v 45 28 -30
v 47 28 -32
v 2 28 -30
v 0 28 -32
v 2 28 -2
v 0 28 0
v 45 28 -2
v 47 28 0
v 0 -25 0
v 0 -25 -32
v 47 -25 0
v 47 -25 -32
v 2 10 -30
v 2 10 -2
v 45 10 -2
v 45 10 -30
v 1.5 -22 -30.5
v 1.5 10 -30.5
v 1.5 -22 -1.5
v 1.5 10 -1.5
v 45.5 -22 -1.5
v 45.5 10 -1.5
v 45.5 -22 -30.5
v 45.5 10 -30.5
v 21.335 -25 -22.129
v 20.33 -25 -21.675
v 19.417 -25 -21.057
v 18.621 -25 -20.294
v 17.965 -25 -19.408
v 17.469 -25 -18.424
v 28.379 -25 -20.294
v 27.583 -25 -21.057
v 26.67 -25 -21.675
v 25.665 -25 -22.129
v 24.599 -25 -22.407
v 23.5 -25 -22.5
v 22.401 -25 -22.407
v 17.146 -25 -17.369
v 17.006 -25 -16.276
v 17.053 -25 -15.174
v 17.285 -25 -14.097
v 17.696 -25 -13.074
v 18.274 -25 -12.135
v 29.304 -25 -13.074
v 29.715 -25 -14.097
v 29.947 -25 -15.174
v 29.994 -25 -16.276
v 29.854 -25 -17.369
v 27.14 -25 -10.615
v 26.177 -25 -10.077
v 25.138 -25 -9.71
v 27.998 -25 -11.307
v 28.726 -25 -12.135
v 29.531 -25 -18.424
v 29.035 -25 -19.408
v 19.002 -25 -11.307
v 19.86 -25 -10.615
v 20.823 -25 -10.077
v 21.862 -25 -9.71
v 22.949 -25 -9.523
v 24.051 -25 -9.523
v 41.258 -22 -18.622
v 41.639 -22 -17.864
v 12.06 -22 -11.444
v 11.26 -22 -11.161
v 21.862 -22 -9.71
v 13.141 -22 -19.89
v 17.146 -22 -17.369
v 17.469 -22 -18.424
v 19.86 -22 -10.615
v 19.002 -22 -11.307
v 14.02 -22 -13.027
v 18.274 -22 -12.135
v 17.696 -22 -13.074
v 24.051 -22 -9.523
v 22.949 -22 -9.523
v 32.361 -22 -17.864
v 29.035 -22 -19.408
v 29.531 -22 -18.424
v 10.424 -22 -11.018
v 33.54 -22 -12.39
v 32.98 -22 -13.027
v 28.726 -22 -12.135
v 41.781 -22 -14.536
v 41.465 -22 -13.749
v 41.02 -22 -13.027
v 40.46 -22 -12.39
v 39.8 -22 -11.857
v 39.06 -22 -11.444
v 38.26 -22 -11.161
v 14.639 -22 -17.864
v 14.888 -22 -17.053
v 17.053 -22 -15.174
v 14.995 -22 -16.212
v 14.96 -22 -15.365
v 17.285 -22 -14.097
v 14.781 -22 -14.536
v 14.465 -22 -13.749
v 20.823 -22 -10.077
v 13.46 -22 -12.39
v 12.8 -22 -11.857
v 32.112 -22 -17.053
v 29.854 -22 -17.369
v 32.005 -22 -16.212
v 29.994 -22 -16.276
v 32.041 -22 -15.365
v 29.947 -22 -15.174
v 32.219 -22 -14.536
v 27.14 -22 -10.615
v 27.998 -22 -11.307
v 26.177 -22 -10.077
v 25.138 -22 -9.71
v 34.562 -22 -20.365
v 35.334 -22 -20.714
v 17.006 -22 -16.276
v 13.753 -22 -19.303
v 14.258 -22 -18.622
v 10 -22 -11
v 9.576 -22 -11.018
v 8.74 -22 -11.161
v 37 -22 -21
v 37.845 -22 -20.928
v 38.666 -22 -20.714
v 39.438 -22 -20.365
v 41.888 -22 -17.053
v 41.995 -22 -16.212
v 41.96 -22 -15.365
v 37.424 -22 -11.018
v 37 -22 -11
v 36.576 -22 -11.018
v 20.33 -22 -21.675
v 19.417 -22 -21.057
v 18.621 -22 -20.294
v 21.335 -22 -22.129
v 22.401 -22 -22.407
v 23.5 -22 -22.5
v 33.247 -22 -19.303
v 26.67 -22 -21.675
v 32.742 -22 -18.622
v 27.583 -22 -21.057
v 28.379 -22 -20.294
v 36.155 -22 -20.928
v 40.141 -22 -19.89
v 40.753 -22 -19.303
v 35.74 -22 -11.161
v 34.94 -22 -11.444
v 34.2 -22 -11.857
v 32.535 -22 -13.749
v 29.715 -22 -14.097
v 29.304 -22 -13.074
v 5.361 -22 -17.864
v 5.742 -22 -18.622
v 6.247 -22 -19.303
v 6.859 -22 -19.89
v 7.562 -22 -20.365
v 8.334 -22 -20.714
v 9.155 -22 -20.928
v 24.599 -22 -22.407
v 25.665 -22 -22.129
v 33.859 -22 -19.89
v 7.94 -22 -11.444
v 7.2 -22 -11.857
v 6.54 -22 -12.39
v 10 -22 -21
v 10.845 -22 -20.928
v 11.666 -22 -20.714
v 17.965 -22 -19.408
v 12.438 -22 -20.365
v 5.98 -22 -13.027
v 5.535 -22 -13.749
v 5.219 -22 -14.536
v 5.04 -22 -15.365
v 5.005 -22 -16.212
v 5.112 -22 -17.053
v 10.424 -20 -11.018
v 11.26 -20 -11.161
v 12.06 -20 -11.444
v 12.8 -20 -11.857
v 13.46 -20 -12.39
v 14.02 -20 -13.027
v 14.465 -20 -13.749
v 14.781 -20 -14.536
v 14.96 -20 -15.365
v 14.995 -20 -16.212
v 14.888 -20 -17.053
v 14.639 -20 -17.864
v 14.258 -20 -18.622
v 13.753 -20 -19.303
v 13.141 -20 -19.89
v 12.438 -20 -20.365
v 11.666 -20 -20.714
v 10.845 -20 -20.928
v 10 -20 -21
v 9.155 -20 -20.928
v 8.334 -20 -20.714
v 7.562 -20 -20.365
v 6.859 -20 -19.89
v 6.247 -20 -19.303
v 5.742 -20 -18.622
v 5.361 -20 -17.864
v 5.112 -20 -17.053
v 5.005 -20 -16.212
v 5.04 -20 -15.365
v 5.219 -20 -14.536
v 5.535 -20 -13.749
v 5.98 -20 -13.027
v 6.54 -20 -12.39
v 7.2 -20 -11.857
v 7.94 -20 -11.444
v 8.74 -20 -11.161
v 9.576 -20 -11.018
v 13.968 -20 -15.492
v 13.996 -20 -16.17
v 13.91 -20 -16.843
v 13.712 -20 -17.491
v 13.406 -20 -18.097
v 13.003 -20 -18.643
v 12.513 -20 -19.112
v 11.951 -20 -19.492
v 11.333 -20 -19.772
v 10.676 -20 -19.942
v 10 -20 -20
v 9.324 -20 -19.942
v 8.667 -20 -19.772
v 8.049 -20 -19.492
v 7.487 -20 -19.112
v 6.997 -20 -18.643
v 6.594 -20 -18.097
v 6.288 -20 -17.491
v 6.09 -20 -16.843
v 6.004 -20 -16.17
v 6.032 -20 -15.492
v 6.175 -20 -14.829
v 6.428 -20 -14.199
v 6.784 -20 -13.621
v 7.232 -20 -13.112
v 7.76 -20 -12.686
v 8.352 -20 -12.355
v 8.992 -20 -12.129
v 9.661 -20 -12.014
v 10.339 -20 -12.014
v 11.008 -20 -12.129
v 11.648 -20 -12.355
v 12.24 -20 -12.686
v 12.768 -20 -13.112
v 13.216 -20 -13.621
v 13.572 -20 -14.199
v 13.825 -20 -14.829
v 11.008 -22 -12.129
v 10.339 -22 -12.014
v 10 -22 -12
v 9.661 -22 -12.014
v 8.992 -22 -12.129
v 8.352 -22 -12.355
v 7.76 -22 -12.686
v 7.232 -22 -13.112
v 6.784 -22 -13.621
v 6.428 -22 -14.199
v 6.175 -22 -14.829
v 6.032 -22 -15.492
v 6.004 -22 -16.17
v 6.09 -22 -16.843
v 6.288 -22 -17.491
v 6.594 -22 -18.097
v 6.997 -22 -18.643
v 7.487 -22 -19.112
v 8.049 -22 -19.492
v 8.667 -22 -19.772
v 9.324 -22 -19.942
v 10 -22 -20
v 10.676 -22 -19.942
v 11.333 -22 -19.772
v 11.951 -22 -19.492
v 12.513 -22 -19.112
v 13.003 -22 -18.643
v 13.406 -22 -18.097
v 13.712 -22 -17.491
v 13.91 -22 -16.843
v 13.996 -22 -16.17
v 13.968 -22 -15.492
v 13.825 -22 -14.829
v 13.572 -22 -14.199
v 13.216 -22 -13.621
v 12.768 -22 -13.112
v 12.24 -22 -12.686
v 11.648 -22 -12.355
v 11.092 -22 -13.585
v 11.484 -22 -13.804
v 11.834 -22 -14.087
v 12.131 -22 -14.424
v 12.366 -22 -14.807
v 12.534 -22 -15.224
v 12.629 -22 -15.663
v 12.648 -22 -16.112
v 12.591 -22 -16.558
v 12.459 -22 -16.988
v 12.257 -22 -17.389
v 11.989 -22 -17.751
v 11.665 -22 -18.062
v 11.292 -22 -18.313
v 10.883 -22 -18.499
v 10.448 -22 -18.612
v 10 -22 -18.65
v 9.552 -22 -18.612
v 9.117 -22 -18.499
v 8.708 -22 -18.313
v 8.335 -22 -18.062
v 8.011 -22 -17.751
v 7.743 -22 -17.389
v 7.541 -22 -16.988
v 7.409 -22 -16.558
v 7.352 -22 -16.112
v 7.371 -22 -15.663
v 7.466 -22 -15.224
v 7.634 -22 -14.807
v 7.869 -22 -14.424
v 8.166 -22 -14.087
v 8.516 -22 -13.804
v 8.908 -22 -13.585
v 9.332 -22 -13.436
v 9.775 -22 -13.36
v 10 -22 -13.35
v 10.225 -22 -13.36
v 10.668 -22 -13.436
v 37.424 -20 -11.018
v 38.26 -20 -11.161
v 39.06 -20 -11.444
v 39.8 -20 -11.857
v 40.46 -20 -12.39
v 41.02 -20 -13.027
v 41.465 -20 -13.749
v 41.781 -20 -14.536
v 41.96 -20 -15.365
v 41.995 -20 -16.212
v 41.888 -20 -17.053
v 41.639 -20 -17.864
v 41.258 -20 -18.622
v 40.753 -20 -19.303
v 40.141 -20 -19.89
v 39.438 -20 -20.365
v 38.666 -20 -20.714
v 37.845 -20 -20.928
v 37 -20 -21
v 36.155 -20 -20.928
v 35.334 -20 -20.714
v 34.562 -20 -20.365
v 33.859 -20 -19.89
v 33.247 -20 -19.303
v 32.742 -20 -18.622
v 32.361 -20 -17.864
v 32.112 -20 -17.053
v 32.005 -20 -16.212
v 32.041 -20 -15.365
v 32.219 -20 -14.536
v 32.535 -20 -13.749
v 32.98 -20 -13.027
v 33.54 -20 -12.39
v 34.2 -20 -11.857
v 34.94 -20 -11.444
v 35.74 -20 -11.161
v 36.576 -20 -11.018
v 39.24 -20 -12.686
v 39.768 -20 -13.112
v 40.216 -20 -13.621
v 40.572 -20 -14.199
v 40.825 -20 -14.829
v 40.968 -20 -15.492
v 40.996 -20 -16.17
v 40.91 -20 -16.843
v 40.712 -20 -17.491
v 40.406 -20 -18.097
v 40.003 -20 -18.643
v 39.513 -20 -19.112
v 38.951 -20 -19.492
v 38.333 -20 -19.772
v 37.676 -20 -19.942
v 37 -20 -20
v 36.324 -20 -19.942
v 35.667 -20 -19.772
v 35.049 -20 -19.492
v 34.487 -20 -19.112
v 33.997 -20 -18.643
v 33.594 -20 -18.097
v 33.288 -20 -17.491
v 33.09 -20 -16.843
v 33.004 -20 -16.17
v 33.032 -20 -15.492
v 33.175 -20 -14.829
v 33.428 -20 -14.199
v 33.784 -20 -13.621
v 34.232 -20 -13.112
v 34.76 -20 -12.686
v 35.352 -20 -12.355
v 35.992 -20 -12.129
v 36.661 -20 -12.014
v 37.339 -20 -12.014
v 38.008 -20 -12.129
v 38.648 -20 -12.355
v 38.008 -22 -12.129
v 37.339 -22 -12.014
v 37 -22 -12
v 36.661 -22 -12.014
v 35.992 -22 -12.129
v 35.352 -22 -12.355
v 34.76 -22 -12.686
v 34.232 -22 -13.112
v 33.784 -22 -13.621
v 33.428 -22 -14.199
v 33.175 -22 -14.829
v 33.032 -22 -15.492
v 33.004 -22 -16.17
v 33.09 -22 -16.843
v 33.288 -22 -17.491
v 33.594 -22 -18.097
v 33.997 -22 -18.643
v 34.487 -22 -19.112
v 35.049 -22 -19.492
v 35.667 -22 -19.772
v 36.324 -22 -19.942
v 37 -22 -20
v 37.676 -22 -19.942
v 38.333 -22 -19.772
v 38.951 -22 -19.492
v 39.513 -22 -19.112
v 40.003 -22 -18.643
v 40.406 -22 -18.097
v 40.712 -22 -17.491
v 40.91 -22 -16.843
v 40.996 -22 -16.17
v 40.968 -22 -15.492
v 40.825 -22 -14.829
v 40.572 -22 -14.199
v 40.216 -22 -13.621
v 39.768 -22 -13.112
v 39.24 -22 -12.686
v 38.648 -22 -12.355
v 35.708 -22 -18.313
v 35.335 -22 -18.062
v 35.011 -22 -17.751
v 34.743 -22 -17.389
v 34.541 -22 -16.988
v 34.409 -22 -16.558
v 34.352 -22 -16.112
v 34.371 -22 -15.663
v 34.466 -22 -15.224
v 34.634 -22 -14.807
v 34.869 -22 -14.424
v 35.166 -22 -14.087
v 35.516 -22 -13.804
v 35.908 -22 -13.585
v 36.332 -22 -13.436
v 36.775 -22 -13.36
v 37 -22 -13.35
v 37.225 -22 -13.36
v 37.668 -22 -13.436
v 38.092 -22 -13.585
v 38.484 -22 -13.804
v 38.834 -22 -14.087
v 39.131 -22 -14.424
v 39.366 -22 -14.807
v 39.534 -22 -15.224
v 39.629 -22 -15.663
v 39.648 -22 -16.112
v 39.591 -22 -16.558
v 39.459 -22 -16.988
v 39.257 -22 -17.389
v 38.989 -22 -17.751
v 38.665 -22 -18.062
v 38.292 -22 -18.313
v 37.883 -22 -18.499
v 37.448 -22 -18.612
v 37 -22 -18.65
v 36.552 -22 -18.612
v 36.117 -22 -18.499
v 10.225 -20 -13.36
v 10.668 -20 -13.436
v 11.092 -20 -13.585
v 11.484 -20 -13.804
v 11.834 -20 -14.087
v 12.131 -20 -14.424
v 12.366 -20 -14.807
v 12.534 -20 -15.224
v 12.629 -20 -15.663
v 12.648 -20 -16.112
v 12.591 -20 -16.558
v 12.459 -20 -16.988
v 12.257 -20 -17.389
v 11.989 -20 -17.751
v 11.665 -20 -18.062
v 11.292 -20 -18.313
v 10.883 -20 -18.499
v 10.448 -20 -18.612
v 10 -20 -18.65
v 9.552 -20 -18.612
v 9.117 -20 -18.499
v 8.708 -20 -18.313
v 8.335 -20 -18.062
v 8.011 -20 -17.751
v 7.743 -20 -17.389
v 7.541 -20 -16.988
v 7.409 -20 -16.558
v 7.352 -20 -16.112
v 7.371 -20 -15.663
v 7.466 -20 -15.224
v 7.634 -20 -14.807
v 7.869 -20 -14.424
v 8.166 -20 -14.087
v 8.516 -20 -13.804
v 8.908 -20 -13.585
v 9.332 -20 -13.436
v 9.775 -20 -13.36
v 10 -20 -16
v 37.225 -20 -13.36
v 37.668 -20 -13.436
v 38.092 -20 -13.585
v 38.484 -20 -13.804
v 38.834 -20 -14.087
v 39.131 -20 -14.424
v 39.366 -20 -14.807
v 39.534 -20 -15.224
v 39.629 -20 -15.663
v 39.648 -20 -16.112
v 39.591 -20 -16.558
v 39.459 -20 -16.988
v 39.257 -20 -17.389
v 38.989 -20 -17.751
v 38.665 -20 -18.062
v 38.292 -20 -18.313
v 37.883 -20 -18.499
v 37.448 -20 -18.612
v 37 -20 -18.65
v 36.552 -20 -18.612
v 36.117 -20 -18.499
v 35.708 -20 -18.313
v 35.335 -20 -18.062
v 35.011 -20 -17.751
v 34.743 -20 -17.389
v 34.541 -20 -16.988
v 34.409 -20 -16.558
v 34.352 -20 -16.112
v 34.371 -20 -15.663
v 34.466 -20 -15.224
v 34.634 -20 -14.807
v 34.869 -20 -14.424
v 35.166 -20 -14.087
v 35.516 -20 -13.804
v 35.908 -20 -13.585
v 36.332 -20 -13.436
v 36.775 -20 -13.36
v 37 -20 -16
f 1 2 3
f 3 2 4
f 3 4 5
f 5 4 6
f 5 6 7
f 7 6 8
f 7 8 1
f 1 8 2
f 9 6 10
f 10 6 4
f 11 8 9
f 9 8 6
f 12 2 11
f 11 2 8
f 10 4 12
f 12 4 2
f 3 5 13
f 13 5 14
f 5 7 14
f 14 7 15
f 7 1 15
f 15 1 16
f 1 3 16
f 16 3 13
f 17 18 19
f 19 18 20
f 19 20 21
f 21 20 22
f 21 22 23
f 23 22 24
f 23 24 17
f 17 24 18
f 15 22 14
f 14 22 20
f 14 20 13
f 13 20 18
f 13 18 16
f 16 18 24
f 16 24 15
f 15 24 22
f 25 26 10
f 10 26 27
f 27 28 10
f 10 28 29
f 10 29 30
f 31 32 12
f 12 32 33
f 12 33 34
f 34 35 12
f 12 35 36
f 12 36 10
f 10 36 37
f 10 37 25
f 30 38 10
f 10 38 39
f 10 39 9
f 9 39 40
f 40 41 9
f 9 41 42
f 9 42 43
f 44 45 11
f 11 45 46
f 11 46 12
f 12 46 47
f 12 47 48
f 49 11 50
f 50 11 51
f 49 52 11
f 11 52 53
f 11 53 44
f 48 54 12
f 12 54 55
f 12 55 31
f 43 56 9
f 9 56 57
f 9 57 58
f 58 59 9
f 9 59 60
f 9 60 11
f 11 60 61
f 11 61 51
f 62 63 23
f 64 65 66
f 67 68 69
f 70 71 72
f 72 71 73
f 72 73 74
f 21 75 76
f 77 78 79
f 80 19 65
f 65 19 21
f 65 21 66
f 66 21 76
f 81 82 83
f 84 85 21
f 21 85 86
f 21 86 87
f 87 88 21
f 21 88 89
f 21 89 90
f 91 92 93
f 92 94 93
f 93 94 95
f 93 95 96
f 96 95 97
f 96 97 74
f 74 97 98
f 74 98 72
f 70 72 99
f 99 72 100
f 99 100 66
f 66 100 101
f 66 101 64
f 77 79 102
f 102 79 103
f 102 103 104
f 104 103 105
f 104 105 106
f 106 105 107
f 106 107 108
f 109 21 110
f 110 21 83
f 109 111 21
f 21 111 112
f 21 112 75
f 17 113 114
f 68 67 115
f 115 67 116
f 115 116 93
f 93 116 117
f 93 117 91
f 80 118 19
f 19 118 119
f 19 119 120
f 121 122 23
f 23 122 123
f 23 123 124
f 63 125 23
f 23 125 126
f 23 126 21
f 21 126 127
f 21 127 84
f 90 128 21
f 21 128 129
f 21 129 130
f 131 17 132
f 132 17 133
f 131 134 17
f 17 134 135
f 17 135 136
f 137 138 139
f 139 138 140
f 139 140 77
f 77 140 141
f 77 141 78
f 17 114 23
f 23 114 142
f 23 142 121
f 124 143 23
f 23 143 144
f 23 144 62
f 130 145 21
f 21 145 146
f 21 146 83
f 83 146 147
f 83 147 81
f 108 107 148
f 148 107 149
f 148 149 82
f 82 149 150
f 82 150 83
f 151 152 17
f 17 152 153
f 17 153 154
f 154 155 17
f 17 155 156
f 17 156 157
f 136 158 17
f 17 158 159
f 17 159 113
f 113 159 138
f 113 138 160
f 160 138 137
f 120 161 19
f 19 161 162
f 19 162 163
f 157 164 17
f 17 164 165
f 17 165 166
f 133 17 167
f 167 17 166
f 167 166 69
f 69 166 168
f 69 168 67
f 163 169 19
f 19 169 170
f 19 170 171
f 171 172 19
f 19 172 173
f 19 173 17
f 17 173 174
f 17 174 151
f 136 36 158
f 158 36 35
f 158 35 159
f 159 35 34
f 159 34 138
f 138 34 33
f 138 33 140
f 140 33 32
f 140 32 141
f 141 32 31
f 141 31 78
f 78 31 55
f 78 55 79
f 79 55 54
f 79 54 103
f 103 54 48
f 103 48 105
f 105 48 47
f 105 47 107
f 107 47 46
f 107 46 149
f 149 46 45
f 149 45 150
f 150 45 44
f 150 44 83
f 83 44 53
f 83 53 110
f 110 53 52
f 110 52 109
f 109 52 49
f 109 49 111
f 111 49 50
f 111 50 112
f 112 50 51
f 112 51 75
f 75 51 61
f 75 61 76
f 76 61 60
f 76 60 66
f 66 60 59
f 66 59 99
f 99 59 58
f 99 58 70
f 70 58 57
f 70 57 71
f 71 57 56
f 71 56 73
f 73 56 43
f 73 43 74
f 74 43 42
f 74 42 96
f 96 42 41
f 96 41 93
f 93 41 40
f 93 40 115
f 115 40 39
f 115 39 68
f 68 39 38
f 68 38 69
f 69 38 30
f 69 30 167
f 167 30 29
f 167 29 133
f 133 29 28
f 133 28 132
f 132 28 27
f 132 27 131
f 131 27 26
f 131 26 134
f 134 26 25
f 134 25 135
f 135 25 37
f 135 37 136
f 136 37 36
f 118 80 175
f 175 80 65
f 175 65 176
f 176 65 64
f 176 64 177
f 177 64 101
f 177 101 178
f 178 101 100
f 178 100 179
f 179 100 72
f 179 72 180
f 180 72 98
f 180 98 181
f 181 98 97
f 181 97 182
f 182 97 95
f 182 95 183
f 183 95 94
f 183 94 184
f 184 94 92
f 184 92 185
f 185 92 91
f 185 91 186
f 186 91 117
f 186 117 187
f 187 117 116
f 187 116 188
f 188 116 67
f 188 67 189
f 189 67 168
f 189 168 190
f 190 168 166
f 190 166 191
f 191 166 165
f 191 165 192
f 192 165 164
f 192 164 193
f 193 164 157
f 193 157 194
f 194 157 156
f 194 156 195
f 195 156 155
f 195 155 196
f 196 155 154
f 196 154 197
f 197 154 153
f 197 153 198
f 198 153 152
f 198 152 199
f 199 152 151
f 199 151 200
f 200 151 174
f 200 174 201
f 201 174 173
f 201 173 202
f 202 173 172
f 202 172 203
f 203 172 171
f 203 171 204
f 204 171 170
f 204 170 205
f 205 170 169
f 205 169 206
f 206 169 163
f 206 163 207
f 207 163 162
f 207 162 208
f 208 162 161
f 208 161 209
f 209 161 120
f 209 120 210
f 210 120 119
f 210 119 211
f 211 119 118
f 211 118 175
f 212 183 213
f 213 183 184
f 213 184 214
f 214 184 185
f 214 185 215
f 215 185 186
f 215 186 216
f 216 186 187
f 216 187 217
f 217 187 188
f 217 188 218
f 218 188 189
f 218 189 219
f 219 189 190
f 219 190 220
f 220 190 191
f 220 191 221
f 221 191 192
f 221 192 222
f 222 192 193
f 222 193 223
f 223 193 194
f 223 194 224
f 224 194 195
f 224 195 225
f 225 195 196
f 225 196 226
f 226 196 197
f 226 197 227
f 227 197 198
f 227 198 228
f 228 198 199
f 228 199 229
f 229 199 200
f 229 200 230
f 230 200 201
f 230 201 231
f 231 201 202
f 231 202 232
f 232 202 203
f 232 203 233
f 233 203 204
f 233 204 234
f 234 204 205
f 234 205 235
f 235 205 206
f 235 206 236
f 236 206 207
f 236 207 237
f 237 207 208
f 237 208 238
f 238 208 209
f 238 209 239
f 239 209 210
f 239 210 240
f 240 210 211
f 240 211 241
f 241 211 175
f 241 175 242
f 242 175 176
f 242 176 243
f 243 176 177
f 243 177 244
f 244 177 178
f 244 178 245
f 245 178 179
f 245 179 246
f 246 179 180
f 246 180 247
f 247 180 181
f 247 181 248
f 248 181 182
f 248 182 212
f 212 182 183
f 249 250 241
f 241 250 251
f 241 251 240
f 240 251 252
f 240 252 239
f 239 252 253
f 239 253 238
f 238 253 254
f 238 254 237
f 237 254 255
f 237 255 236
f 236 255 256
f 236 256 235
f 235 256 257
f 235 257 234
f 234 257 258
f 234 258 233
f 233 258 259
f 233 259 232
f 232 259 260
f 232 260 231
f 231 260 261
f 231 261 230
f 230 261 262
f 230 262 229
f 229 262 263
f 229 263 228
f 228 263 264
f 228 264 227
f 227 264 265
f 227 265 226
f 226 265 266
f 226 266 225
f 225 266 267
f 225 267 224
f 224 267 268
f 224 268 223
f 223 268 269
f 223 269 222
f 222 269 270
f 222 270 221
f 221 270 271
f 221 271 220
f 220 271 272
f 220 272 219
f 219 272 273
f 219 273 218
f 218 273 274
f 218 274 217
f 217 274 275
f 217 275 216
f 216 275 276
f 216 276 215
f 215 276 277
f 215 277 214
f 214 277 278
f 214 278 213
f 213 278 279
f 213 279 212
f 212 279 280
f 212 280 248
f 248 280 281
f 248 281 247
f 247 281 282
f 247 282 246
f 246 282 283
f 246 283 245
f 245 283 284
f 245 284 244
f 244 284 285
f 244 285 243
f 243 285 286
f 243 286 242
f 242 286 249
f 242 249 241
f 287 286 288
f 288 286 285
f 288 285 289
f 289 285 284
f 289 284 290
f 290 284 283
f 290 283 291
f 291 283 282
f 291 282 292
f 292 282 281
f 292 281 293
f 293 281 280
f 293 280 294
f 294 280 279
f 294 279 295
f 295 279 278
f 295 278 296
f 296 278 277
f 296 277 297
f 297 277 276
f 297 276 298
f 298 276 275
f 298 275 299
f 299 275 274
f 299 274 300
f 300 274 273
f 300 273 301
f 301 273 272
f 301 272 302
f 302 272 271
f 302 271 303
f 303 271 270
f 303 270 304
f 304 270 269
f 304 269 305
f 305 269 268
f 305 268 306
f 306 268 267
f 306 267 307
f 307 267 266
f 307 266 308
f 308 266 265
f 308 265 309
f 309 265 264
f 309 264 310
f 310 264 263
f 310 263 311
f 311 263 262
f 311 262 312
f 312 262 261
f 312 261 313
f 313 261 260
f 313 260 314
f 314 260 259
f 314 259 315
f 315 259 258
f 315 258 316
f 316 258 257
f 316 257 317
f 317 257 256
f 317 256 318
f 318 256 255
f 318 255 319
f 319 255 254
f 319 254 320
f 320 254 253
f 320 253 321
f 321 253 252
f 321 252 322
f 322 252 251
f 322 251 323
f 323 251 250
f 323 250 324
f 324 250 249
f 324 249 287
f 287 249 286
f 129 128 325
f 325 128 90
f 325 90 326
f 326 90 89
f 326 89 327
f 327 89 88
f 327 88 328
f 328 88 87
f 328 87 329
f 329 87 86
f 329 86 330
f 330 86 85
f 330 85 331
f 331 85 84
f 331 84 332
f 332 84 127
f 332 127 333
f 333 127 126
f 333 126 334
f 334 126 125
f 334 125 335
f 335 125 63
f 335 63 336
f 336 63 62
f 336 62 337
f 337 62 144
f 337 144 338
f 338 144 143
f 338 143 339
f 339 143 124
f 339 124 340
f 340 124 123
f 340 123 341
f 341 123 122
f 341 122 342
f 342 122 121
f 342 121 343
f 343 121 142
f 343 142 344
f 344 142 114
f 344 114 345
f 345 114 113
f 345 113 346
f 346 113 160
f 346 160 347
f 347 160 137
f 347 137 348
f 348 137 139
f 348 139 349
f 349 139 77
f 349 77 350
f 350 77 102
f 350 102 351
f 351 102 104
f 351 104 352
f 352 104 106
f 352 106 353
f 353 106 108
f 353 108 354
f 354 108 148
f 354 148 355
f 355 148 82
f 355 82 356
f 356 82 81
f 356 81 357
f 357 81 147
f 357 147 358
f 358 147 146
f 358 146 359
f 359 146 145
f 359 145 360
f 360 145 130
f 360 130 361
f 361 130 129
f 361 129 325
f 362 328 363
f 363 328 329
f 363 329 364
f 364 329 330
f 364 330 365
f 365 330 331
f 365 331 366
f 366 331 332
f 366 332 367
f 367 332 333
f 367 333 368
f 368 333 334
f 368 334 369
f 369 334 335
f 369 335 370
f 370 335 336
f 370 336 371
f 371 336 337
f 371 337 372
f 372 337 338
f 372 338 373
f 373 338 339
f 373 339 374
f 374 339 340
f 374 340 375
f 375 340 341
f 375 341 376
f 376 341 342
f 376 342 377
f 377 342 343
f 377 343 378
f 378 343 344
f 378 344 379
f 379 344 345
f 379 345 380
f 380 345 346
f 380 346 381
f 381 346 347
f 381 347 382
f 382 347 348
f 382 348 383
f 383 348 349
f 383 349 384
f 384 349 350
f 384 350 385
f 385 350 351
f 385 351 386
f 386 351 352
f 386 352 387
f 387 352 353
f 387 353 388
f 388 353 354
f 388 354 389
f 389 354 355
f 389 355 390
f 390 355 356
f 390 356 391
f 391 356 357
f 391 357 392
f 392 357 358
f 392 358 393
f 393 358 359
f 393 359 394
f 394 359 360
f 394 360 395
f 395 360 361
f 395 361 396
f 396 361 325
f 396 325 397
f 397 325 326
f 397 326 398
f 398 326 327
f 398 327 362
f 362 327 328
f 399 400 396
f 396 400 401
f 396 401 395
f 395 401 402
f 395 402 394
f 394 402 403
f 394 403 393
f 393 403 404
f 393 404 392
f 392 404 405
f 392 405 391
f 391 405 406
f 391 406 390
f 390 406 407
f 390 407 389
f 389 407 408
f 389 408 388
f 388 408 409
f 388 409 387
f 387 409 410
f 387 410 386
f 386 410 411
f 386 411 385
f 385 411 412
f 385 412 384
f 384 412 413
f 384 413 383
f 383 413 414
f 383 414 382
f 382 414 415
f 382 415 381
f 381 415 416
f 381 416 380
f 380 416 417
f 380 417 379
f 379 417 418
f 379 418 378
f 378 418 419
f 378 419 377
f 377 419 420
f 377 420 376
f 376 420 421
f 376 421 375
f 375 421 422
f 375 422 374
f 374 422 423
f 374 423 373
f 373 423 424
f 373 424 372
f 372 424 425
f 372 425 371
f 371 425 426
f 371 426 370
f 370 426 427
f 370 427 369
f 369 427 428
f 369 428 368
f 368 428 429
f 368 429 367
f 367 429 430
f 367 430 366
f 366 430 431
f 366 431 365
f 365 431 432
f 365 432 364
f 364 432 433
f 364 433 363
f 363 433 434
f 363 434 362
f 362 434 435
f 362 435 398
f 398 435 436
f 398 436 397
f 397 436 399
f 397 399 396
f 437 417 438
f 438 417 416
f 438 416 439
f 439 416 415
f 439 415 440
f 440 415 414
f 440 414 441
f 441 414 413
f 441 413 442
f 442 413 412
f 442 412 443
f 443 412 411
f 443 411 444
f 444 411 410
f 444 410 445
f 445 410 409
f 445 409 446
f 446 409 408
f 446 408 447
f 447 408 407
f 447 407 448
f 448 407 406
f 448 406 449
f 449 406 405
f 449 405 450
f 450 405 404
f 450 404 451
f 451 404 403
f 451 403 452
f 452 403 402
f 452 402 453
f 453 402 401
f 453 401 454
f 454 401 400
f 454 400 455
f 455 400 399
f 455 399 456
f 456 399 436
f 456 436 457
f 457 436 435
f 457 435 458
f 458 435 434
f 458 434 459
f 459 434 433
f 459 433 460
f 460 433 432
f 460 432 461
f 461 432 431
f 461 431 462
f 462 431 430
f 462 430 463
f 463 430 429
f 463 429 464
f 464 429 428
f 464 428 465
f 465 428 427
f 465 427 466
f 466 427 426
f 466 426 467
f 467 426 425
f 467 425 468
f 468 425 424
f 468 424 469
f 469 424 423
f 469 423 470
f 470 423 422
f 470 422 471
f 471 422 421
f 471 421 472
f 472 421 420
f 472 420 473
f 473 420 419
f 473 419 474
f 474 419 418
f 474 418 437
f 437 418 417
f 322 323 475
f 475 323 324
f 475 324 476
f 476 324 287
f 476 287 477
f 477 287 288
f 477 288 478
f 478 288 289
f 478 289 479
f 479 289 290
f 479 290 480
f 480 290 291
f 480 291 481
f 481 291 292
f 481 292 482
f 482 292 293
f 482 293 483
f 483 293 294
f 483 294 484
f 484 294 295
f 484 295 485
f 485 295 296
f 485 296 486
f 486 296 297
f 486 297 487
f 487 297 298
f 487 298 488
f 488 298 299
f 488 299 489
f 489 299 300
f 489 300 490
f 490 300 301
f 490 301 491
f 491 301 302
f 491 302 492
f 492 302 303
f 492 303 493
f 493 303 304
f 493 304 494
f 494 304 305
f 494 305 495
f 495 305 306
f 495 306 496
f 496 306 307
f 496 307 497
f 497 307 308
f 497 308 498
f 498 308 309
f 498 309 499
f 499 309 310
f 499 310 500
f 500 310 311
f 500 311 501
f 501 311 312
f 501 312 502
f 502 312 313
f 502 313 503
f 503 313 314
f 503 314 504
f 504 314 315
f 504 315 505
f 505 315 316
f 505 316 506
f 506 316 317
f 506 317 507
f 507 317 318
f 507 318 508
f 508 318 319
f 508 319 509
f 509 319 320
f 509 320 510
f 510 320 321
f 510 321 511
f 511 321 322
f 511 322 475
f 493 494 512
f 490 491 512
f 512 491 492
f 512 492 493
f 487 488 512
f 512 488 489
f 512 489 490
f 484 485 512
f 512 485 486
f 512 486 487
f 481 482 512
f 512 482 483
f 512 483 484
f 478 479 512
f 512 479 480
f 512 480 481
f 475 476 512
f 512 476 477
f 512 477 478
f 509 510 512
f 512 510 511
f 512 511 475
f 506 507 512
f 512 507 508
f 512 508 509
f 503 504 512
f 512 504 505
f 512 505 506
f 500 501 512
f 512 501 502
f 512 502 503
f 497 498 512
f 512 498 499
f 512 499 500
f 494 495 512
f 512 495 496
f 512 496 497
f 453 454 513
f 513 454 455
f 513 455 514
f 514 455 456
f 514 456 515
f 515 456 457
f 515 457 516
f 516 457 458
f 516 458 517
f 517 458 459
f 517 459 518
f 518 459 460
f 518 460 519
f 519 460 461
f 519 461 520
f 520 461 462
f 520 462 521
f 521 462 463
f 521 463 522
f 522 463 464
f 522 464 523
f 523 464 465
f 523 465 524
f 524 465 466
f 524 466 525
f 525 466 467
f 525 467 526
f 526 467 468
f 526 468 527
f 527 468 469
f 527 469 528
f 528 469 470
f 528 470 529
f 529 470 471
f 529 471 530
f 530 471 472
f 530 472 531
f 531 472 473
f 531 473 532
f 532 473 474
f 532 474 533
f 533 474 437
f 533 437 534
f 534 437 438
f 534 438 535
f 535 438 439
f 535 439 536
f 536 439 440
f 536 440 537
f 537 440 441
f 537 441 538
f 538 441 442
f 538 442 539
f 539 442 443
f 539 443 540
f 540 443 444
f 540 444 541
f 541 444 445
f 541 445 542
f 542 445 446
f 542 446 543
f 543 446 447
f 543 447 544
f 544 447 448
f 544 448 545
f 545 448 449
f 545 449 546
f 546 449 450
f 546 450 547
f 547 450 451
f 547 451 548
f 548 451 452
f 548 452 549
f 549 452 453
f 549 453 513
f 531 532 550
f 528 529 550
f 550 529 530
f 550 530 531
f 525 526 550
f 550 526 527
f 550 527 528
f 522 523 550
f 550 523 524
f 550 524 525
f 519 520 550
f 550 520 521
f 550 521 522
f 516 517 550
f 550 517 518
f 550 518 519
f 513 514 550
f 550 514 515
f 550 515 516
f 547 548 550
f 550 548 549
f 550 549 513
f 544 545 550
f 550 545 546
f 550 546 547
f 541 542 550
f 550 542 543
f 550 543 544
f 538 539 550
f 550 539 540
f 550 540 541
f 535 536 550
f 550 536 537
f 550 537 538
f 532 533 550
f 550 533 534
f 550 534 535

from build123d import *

# Parameters (mm, degrees)
SKETCH1_W           = 47
SKETCH1_H           = 32
SKETCH1_W_2         = 43
SKETCH1_H_2         = 28
BOSS_EXTRUDE1_DEPTH = 28
SKETCH2_W           = 44
SKETCH2_H           = 29
CUT_EXTRUDE1_DEPTH  = 10
SKETCH3_W           = 47
SKETCH3_H           = 32
SKETCH3_W_2         = 44
SKETCH3_H_2         = 29
BOSS_EXTRUDE2_DEPTH = 25
SKETCH4_W           = 47
SKETCH4_H           = 32
SKETCH4_R           = 6.5
BOSS_EXTRUDE3_DEPTH = 3
SKETCH5_R           = 5
SKETCH5_R_2         = 4
BOSS_EXTRUDE4_DEPTH = 5
SKETCH6_R           = 2.65
BOSS_EXTRUDE5_DEPTH = 5


with BuildPart() as part:
    # Sketch1 → Boss-Extrude1 (new body)
    with BuildSketch(Plane(origin=(0, 0, 0), x_dir=(1, 0, 0), z_dir=(0, 1, 0))):
        with Locations((23.5, 16)):
            Rectangle(SKETCH1_W, SKETCH1_H)
        with Locations((23.5, 16)):
            Rectangle(SKETCH1_W_2, SKETCH1_H_2, mode=Mode.SUBTRACT)
    extrude(amount=BOSS_EXTRUDE1_DEPTH)

    # Sketch2 → Cut-Extrude1 (cut)
    with BuildSketch(Plane.XZ):
        with Locations((23.5, -16)):
            Rectangle(SKETCH2_W, SKETCH2_H)
    extrude(amount=-CUT_EXTRUDE1_DEPTH, mode=Mode.SUBTRACT)

    # Sketch3 → Boss-Extrude2 (add)
    with BuildSketch(Plane.XZ):
        with Locations((23.5, -16)):
            Rectangle(SKETCH3_W, SKETCH3_H)
        with Locations((23.5, -16)):
            Rectangle(SKETCH3_W_2, SKETCH3_H_2, mode=Mode.SUBTRACT)
    extrude(amount=BOSS_EXTRUDE2_DEPTH)

    # Sketch4 → Boss-Extrude3 (add)
    with BuildSketch(Plane.XZ.offset(25)):
        with Locations((23.5, -16)):
            Rectangle(SKETCH4_W, SKETCH4_H)
        with Locations(Location((23.5, -16, 0), (0, 0, 270))):
            Circle(SKETCH4_R, mode=Mode.SUBTRACT)
    extrude(amount=-BOSS_EXTRUDE3_DEPTH)

    # Sketch5 → Boss-Extrude4 (add)
    # profile 1 of 2: a face of its own
    with BuildSketch(Plane.XZ.offset(25)):
        with Locations(Location((10, -16, 0), (0, 0, 270))):
            Circle(SKETCH5_R)
        with Locations(Location((10, -16, 0), (0, 0, 270))):
            Circle(SKETCH5_R_2, mode=Mode.SUBTRACT)
    # profile 2 of 2: a face of its own
    with BuildSketch(Plane.XZ.offset(25)):
        with Locations(Location((37, -16, 0), (0, 0, 270))):
            Circle(SKETCH5_R)
        with Locations(Location((37, -16, 0), (0, 0, 270))):
            Circle(SKETCH5_R_2, mode=Mode.SUBTRACT)
    extrude(amount=-BOSS_EXTRUDE4_DEPTH)

    # Sketch6 → Boss-Extrude5 (add)
    with BuildSketch(Plane.XZ.offset(25)):
        with Locations(Location((10, -16, 0), (0, 0, 270))):
            Circle(SKETCH6_R)
        with Locations(Location((37, -16, 0), (0, 0, 270))):
            Circle(SKETCH6_R)
    extrude(amount=-BOSS_EXTRUDE5_DEPTH)


solid = part.part
